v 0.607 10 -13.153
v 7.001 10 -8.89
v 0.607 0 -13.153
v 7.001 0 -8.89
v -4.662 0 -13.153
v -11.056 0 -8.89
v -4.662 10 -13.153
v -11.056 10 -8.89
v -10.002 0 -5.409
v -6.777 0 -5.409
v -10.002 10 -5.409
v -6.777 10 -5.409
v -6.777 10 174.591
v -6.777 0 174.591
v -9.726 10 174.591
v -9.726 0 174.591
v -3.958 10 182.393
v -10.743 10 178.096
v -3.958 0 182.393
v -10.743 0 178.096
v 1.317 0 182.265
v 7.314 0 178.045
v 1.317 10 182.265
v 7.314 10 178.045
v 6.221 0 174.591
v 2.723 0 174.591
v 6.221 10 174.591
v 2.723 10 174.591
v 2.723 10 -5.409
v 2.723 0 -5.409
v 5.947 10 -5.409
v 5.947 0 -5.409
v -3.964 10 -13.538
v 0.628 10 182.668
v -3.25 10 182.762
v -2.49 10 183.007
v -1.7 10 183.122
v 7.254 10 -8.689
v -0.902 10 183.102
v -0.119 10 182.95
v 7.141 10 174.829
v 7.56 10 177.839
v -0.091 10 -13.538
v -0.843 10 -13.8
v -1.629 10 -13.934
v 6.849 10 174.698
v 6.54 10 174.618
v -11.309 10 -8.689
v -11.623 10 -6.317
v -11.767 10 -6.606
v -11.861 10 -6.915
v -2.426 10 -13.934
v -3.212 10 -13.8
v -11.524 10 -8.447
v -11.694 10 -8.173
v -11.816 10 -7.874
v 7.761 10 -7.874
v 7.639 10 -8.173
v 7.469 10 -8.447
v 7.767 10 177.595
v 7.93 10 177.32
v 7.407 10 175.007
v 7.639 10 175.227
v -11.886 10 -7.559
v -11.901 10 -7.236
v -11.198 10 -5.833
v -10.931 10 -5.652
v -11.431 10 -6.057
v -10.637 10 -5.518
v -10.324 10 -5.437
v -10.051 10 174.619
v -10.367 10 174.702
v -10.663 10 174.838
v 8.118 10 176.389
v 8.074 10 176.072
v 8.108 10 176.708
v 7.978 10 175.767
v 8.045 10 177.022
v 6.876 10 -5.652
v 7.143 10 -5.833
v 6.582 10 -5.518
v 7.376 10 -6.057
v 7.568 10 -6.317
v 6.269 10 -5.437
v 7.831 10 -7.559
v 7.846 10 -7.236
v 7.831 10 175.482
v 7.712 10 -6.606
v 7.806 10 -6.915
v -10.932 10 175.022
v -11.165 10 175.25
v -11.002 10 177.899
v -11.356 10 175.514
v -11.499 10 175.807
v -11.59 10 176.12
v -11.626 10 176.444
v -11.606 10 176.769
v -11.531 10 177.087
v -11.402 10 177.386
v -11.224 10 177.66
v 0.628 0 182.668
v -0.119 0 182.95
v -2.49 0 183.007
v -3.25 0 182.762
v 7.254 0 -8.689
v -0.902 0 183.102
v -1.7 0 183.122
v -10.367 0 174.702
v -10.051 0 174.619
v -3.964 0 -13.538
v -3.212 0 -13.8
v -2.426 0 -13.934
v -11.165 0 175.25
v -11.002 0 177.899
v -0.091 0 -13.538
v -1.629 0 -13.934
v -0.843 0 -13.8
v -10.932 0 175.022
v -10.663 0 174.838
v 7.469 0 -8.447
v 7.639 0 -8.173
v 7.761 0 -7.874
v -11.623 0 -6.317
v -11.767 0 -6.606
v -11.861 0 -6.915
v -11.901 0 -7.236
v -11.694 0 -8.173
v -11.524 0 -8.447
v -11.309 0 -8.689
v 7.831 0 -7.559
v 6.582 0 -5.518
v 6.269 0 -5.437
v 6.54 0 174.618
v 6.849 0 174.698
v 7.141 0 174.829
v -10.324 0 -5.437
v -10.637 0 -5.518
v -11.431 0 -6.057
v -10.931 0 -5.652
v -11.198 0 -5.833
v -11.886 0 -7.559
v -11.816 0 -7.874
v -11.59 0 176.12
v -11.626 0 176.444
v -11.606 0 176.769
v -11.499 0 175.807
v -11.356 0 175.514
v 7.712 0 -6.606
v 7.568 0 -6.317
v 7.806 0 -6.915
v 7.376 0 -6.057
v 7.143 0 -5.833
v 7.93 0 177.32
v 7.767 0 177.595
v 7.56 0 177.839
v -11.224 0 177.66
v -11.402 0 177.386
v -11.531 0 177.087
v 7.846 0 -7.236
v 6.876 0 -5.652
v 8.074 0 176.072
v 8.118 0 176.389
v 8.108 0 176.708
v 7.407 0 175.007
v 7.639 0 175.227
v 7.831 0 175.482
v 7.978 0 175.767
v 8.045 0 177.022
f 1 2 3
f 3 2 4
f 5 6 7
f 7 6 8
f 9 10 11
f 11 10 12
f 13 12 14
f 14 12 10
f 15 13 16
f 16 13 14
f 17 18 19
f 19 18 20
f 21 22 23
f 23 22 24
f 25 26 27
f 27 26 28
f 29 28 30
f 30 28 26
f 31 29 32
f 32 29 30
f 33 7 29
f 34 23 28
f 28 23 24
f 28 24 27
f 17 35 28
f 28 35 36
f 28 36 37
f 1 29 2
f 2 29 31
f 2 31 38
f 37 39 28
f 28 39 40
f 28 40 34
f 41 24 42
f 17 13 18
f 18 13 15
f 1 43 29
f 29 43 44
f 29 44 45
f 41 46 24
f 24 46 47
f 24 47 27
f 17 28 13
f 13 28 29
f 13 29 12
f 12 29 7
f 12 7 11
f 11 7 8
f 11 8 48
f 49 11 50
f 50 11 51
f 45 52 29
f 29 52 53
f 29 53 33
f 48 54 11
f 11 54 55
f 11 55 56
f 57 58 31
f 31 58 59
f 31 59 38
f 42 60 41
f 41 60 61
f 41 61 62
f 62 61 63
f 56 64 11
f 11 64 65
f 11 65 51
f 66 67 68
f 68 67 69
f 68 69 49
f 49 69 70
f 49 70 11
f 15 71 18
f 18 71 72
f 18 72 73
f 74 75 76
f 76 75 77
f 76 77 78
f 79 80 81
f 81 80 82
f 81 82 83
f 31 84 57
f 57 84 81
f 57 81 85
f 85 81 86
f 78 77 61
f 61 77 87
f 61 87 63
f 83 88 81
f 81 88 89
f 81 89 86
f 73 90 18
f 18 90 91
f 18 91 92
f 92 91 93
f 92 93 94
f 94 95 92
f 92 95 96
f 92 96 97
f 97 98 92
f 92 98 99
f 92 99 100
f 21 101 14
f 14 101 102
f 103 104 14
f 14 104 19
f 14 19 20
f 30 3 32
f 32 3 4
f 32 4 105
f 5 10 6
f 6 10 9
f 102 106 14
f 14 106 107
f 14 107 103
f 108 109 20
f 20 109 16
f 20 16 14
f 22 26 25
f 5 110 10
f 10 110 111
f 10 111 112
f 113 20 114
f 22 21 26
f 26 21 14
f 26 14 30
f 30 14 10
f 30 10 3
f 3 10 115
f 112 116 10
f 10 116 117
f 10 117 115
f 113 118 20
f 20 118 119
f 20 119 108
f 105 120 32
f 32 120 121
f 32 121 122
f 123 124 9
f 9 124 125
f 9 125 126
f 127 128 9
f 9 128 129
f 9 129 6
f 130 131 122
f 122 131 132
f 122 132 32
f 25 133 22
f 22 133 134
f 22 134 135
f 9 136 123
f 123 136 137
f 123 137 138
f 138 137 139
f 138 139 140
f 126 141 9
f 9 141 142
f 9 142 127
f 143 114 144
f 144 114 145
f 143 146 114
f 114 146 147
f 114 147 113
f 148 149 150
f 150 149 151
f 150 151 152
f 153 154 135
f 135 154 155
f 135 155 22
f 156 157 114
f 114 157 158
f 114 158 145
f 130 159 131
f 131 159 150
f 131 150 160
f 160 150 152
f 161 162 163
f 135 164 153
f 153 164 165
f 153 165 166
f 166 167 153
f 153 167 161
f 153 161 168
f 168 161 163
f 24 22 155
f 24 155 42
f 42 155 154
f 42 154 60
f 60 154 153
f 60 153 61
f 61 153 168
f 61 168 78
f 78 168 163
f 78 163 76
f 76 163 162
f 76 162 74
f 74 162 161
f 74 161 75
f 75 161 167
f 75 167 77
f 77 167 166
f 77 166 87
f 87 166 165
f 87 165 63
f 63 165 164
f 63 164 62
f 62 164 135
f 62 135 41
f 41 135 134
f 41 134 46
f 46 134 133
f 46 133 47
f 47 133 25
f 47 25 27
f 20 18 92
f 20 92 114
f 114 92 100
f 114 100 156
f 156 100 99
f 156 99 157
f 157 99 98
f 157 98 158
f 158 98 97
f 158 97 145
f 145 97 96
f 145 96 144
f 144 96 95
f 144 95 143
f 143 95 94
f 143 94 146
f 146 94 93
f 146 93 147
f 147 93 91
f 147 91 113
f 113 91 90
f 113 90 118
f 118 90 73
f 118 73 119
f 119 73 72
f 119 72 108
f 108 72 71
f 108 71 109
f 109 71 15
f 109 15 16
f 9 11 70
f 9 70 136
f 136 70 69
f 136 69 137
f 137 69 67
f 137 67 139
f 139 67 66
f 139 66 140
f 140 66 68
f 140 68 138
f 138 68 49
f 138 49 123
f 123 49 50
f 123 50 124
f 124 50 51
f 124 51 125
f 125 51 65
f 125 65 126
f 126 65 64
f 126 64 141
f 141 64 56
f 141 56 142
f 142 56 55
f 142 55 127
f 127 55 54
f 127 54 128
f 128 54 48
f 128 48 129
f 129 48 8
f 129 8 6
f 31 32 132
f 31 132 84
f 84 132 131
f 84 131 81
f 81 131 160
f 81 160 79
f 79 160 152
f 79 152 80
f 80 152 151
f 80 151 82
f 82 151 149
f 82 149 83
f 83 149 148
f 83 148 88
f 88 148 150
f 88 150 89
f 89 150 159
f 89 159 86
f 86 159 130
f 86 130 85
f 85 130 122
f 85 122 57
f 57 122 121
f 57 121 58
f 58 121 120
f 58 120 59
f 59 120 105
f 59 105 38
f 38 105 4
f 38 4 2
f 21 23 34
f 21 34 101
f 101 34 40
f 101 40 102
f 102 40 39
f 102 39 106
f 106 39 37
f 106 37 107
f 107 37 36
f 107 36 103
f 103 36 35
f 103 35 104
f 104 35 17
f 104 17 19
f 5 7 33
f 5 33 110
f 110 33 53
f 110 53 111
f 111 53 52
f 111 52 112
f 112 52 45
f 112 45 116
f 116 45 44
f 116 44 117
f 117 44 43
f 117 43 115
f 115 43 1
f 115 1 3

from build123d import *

# Parameters (mm, degrees)
SKETCH1_W           = 9.5
SKETCH1_H           = 180
BOSS_EXTRUDE1_DEPTH = 10
FILLET1_R           = 1.9
FILLET2_R           = 4.75


with BuildPart() as part:
    # Sketch1 → Boss-Extrude1 (new body)
    with BuildSketch(Plane(origin=(0, 0, 0), x_dir=(1, 0, 0), z_dir=(0, 1, 0))):
        with Locations((-2.027493606, -84.590792839)):
            Rectangle(SKETCH1_W, SKETCH1_H)
        Polygon((-6.777493606, 5.409207161), (-2.027493606, 5.409207161), (-2.027493606, 14.909207161), (-16.277493606, 5.409207161), align=None)
        Polygon((-2.027493606, 14.909207161), (-2.027493606, 5.409207161), (2.722506394, 5.409207161), (12.222506394, 5.409207161), align=None)
        Polygon((-6.777493606, -174.590792839), (2.722506394, -174.590792839), (12.222506394, -174.590792839), (-1.277493606, -184.090792839), (-16.277493606, -174.590792839), align=None)
    extrude(amount=BOSS_EXTRUDE1_DEPTH)

    # Fillet1
    fillet1_edges = [part.edges().sort_by_distance(p)[0] for p in [
        (12.222506394, 5, -5.409207161),
        (12.222506394, 5, 174.590792839),
        (-16.277493606, 5, 174.590792839),
        (-16.277493606, 5, -5.409207161),
    ]]
    fillet(fillet1_edges, radius=FILLET1_R)

    # Fillet2
    fillet2_edges = [part.edges().sort_by_distance(p)[0] for p in [
        (-1.277493606, 5, 184.090792839),
        (-2.027493606, 5, -14.909207161),
    ]]
    fillet(fillet2_edges, radius=FILLET2_R)


solid = part.part
